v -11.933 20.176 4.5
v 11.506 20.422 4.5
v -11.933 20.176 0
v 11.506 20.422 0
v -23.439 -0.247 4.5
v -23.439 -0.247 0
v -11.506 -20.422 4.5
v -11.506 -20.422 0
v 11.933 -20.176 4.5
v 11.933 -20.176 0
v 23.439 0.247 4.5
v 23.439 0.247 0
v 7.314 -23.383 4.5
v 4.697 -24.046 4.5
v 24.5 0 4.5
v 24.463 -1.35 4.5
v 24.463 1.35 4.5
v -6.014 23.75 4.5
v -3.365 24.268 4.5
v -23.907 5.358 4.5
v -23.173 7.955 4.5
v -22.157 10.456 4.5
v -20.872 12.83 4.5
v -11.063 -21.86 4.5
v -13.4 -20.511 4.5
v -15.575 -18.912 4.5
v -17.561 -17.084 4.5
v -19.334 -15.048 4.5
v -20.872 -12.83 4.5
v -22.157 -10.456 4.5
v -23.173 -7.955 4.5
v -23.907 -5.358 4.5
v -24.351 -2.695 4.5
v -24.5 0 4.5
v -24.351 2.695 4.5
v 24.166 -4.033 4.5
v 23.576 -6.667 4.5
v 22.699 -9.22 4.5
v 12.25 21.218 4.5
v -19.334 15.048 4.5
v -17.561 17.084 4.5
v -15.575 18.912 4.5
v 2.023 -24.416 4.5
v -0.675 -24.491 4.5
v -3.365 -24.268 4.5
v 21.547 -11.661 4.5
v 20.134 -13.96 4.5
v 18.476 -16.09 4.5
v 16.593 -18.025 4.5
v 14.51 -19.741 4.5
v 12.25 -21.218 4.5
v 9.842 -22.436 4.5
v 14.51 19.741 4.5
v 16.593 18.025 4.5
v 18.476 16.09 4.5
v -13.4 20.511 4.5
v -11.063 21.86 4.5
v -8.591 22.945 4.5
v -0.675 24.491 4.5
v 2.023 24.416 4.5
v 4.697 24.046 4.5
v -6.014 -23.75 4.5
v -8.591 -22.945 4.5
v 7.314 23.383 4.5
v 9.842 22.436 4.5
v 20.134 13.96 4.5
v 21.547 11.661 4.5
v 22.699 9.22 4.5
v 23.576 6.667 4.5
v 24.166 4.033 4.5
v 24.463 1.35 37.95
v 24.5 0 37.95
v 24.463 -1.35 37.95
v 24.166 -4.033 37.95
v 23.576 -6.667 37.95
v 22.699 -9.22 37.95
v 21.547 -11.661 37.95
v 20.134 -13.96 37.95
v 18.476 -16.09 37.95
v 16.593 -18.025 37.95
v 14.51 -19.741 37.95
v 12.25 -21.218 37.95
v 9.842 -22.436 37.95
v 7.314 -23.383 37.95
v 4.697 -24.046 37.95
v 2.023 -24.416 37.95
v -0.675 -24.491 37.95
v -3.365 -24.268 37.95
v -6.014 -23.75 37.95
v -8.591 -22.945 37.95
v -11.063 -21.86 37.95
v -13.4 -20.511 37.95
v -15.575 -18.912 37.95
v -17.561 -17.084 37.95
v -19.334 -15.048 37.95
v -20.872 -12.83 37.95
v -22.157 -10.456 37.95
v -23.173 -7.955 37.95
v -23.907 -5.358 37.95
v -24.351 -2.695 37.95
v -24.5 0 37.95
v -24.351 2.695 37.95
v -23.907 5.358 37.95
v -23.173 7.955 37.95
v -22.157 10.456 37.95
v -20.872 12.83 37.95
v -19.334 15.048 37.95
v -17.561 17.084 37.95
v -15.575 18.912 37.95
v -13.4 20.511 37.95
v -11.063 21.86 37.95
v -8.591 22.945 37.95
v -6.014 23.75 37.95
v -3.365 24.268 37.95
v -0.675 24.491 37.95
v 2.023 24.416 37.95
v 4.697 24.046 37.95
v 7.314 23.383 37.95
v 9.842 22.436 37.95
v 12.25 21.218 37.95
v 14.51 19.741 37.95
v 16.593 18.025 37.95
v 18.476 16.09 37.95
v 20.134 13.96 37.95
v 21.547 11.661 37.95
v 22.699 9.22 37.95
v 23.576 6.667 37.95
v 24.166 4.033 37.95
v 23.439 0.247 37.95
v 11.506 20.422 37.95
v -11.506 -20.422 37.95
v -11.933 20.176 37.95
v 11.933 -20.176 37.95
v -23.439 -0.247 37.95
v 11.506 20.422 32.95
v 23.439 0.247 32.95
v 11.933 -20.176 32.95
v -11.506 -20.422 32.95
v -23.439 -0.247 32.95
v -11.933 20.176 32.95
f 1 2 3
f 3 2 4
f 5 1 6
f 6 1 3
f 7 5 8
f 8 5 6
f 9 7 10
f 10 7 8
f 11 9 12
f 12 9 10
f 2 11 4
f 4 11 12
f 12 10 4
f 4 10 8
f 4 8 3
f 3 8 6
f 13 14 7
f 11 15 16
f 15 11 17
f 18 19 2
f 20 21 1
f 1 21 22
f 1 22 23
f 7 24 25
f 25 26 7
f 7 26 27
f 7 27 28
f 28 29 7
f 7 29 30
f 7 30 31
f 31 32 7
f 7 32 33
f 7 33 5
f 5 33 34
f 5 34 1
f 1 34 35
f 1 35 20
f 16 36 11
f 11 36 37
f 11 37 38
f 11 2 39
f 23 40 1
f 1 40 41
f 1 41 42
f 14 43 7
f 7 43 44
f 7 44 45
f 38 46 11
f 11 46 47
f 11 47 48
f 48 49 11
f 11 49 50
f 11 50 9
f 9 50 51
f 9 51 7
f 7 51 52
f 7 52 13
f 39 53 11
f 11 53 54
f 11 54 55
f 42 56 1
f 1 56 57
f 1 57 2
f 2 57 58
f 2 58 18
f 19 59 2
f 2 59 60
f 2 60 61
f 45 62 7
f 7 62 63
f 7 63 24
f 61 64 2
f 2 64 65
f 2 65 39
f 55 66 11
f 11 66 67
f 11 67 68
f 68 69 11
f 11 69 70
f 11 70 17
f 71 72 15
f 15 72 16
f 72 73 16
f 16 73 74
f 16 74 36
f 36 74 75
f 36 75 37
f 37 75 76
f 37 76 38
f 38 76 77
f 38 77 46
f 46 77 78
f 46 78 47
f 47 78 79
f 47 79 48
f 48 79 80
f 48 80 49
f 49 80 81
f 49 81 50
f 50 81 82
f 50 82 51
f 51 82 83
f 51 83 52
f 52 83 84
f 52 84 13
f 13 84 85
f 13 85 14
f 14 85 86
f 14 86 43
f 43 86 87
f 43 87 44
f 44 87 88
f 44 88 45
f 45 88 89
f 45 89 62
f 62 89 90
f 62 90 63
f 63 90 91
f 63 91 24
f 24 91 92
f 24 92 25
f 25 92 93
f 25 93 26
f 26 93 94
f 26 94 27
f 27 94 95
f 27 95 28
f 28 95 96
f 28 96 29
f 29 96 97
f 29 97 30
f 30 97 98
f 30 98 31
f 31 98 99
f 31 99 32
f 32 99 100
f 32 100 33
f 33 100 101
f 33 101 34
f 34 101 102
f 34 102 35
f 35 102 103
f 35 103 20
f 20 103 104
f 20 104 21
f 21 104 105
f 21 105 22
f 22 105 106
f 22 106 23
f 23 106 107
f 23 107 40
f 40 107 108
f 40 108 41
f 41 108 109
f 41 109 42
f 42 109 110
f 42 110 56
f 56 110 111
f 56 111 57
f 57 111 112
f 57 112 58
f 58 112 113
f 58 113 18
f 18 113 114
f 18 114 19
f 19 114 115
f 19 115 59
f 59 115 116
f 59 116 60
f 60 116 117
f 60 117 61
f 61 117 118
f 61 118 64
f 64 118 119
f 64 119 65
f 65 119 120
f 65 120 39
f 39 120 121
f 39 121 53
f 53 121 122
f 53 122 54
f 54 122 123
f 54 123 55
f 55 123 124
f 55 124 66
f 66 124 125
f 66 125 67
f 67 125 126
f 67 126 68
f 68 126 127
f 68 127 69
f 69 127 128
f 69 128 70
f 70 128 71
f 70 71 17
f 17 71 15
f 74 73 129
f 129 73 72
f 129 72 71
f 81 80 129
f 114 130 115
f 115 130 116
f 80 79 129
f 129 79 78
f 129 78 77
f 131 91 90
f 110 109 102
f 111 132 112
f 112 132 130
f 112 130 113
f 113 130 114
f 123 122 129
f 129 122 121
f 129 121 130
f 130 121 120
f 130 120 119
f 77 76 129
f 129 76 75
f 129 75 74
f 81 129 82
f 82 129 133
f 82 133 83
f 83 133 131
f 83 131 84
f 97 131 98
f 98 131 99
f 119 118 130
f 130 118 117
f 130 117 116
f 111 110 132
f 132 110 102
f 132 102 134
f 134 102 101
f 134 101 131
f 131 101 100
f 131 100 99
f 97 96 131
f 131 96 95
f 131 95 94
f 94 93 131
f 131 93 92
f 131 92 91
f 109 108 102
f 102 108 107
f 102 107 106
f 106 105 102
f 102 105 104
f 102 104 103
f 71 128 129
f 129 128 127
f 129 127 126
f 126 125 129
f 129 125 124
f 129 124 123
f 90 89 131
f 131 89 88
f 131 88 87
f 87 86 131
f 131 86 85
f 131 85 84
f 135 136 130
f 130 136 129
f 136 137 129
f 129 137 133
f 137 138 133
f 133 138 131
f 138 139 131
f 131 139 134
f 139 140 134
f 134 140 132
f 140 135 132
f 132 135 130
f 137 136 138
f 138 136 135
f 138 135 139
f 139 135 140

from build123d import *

# Parameters (mm, degrees)
BOSS_EXTRUDE1_DEPTH = 4.5
SKETCH3_R           = 24.5
BOSS_EXTRUDE2_DEPTH = 33.45
CUT_EXTRUDE1_DEPTH  = 5


with BuildPart() as part:
    # Sketch1 → Boss-Extrude1 (new body)
    with BuildSketch(Plane(origin=(0, 0, 0), x_dir=(0, 1, 0), z_dir=(0, 0, 1))):
        Polygon((20.175580242, 11.933117582), (-0.246592851, 23.439123817), (-20.422173094, 11.506006235), (-20.175580242, -11.933117582), (0.246592851, -23.439123817), (20.422173094, -11.506006235), align=None)
    extrude(amount=BOSS_EXTRUDE1_DEPTH)

    # Sketch3 → Boss-Extrude2 (add)
    with BuildSketch(Plane.XY.offset(4.5)):
        Circle(SKETCH3_R)
    extrude(amount=BOSS_EXTRUDE2_DEPTH)

    # Sketch4 → Cut-Extrude1 (cut)
    with BuildSketch(Plane.XY.offset(37.95)):
        Polygon((11.506006235, 20.422173094), (-11.933117582, 20.175580242), (-23.439123817, -0.246592851), (-11.506006235, -20.422173094), (11.933117582, -20.175580242), (23.439123817, 0.246592851), align=None)
    extrude(amount=-CUT_EXTRUDE1_DEPTH, mode=Mode.SUBTRACT)


solid = part.part
